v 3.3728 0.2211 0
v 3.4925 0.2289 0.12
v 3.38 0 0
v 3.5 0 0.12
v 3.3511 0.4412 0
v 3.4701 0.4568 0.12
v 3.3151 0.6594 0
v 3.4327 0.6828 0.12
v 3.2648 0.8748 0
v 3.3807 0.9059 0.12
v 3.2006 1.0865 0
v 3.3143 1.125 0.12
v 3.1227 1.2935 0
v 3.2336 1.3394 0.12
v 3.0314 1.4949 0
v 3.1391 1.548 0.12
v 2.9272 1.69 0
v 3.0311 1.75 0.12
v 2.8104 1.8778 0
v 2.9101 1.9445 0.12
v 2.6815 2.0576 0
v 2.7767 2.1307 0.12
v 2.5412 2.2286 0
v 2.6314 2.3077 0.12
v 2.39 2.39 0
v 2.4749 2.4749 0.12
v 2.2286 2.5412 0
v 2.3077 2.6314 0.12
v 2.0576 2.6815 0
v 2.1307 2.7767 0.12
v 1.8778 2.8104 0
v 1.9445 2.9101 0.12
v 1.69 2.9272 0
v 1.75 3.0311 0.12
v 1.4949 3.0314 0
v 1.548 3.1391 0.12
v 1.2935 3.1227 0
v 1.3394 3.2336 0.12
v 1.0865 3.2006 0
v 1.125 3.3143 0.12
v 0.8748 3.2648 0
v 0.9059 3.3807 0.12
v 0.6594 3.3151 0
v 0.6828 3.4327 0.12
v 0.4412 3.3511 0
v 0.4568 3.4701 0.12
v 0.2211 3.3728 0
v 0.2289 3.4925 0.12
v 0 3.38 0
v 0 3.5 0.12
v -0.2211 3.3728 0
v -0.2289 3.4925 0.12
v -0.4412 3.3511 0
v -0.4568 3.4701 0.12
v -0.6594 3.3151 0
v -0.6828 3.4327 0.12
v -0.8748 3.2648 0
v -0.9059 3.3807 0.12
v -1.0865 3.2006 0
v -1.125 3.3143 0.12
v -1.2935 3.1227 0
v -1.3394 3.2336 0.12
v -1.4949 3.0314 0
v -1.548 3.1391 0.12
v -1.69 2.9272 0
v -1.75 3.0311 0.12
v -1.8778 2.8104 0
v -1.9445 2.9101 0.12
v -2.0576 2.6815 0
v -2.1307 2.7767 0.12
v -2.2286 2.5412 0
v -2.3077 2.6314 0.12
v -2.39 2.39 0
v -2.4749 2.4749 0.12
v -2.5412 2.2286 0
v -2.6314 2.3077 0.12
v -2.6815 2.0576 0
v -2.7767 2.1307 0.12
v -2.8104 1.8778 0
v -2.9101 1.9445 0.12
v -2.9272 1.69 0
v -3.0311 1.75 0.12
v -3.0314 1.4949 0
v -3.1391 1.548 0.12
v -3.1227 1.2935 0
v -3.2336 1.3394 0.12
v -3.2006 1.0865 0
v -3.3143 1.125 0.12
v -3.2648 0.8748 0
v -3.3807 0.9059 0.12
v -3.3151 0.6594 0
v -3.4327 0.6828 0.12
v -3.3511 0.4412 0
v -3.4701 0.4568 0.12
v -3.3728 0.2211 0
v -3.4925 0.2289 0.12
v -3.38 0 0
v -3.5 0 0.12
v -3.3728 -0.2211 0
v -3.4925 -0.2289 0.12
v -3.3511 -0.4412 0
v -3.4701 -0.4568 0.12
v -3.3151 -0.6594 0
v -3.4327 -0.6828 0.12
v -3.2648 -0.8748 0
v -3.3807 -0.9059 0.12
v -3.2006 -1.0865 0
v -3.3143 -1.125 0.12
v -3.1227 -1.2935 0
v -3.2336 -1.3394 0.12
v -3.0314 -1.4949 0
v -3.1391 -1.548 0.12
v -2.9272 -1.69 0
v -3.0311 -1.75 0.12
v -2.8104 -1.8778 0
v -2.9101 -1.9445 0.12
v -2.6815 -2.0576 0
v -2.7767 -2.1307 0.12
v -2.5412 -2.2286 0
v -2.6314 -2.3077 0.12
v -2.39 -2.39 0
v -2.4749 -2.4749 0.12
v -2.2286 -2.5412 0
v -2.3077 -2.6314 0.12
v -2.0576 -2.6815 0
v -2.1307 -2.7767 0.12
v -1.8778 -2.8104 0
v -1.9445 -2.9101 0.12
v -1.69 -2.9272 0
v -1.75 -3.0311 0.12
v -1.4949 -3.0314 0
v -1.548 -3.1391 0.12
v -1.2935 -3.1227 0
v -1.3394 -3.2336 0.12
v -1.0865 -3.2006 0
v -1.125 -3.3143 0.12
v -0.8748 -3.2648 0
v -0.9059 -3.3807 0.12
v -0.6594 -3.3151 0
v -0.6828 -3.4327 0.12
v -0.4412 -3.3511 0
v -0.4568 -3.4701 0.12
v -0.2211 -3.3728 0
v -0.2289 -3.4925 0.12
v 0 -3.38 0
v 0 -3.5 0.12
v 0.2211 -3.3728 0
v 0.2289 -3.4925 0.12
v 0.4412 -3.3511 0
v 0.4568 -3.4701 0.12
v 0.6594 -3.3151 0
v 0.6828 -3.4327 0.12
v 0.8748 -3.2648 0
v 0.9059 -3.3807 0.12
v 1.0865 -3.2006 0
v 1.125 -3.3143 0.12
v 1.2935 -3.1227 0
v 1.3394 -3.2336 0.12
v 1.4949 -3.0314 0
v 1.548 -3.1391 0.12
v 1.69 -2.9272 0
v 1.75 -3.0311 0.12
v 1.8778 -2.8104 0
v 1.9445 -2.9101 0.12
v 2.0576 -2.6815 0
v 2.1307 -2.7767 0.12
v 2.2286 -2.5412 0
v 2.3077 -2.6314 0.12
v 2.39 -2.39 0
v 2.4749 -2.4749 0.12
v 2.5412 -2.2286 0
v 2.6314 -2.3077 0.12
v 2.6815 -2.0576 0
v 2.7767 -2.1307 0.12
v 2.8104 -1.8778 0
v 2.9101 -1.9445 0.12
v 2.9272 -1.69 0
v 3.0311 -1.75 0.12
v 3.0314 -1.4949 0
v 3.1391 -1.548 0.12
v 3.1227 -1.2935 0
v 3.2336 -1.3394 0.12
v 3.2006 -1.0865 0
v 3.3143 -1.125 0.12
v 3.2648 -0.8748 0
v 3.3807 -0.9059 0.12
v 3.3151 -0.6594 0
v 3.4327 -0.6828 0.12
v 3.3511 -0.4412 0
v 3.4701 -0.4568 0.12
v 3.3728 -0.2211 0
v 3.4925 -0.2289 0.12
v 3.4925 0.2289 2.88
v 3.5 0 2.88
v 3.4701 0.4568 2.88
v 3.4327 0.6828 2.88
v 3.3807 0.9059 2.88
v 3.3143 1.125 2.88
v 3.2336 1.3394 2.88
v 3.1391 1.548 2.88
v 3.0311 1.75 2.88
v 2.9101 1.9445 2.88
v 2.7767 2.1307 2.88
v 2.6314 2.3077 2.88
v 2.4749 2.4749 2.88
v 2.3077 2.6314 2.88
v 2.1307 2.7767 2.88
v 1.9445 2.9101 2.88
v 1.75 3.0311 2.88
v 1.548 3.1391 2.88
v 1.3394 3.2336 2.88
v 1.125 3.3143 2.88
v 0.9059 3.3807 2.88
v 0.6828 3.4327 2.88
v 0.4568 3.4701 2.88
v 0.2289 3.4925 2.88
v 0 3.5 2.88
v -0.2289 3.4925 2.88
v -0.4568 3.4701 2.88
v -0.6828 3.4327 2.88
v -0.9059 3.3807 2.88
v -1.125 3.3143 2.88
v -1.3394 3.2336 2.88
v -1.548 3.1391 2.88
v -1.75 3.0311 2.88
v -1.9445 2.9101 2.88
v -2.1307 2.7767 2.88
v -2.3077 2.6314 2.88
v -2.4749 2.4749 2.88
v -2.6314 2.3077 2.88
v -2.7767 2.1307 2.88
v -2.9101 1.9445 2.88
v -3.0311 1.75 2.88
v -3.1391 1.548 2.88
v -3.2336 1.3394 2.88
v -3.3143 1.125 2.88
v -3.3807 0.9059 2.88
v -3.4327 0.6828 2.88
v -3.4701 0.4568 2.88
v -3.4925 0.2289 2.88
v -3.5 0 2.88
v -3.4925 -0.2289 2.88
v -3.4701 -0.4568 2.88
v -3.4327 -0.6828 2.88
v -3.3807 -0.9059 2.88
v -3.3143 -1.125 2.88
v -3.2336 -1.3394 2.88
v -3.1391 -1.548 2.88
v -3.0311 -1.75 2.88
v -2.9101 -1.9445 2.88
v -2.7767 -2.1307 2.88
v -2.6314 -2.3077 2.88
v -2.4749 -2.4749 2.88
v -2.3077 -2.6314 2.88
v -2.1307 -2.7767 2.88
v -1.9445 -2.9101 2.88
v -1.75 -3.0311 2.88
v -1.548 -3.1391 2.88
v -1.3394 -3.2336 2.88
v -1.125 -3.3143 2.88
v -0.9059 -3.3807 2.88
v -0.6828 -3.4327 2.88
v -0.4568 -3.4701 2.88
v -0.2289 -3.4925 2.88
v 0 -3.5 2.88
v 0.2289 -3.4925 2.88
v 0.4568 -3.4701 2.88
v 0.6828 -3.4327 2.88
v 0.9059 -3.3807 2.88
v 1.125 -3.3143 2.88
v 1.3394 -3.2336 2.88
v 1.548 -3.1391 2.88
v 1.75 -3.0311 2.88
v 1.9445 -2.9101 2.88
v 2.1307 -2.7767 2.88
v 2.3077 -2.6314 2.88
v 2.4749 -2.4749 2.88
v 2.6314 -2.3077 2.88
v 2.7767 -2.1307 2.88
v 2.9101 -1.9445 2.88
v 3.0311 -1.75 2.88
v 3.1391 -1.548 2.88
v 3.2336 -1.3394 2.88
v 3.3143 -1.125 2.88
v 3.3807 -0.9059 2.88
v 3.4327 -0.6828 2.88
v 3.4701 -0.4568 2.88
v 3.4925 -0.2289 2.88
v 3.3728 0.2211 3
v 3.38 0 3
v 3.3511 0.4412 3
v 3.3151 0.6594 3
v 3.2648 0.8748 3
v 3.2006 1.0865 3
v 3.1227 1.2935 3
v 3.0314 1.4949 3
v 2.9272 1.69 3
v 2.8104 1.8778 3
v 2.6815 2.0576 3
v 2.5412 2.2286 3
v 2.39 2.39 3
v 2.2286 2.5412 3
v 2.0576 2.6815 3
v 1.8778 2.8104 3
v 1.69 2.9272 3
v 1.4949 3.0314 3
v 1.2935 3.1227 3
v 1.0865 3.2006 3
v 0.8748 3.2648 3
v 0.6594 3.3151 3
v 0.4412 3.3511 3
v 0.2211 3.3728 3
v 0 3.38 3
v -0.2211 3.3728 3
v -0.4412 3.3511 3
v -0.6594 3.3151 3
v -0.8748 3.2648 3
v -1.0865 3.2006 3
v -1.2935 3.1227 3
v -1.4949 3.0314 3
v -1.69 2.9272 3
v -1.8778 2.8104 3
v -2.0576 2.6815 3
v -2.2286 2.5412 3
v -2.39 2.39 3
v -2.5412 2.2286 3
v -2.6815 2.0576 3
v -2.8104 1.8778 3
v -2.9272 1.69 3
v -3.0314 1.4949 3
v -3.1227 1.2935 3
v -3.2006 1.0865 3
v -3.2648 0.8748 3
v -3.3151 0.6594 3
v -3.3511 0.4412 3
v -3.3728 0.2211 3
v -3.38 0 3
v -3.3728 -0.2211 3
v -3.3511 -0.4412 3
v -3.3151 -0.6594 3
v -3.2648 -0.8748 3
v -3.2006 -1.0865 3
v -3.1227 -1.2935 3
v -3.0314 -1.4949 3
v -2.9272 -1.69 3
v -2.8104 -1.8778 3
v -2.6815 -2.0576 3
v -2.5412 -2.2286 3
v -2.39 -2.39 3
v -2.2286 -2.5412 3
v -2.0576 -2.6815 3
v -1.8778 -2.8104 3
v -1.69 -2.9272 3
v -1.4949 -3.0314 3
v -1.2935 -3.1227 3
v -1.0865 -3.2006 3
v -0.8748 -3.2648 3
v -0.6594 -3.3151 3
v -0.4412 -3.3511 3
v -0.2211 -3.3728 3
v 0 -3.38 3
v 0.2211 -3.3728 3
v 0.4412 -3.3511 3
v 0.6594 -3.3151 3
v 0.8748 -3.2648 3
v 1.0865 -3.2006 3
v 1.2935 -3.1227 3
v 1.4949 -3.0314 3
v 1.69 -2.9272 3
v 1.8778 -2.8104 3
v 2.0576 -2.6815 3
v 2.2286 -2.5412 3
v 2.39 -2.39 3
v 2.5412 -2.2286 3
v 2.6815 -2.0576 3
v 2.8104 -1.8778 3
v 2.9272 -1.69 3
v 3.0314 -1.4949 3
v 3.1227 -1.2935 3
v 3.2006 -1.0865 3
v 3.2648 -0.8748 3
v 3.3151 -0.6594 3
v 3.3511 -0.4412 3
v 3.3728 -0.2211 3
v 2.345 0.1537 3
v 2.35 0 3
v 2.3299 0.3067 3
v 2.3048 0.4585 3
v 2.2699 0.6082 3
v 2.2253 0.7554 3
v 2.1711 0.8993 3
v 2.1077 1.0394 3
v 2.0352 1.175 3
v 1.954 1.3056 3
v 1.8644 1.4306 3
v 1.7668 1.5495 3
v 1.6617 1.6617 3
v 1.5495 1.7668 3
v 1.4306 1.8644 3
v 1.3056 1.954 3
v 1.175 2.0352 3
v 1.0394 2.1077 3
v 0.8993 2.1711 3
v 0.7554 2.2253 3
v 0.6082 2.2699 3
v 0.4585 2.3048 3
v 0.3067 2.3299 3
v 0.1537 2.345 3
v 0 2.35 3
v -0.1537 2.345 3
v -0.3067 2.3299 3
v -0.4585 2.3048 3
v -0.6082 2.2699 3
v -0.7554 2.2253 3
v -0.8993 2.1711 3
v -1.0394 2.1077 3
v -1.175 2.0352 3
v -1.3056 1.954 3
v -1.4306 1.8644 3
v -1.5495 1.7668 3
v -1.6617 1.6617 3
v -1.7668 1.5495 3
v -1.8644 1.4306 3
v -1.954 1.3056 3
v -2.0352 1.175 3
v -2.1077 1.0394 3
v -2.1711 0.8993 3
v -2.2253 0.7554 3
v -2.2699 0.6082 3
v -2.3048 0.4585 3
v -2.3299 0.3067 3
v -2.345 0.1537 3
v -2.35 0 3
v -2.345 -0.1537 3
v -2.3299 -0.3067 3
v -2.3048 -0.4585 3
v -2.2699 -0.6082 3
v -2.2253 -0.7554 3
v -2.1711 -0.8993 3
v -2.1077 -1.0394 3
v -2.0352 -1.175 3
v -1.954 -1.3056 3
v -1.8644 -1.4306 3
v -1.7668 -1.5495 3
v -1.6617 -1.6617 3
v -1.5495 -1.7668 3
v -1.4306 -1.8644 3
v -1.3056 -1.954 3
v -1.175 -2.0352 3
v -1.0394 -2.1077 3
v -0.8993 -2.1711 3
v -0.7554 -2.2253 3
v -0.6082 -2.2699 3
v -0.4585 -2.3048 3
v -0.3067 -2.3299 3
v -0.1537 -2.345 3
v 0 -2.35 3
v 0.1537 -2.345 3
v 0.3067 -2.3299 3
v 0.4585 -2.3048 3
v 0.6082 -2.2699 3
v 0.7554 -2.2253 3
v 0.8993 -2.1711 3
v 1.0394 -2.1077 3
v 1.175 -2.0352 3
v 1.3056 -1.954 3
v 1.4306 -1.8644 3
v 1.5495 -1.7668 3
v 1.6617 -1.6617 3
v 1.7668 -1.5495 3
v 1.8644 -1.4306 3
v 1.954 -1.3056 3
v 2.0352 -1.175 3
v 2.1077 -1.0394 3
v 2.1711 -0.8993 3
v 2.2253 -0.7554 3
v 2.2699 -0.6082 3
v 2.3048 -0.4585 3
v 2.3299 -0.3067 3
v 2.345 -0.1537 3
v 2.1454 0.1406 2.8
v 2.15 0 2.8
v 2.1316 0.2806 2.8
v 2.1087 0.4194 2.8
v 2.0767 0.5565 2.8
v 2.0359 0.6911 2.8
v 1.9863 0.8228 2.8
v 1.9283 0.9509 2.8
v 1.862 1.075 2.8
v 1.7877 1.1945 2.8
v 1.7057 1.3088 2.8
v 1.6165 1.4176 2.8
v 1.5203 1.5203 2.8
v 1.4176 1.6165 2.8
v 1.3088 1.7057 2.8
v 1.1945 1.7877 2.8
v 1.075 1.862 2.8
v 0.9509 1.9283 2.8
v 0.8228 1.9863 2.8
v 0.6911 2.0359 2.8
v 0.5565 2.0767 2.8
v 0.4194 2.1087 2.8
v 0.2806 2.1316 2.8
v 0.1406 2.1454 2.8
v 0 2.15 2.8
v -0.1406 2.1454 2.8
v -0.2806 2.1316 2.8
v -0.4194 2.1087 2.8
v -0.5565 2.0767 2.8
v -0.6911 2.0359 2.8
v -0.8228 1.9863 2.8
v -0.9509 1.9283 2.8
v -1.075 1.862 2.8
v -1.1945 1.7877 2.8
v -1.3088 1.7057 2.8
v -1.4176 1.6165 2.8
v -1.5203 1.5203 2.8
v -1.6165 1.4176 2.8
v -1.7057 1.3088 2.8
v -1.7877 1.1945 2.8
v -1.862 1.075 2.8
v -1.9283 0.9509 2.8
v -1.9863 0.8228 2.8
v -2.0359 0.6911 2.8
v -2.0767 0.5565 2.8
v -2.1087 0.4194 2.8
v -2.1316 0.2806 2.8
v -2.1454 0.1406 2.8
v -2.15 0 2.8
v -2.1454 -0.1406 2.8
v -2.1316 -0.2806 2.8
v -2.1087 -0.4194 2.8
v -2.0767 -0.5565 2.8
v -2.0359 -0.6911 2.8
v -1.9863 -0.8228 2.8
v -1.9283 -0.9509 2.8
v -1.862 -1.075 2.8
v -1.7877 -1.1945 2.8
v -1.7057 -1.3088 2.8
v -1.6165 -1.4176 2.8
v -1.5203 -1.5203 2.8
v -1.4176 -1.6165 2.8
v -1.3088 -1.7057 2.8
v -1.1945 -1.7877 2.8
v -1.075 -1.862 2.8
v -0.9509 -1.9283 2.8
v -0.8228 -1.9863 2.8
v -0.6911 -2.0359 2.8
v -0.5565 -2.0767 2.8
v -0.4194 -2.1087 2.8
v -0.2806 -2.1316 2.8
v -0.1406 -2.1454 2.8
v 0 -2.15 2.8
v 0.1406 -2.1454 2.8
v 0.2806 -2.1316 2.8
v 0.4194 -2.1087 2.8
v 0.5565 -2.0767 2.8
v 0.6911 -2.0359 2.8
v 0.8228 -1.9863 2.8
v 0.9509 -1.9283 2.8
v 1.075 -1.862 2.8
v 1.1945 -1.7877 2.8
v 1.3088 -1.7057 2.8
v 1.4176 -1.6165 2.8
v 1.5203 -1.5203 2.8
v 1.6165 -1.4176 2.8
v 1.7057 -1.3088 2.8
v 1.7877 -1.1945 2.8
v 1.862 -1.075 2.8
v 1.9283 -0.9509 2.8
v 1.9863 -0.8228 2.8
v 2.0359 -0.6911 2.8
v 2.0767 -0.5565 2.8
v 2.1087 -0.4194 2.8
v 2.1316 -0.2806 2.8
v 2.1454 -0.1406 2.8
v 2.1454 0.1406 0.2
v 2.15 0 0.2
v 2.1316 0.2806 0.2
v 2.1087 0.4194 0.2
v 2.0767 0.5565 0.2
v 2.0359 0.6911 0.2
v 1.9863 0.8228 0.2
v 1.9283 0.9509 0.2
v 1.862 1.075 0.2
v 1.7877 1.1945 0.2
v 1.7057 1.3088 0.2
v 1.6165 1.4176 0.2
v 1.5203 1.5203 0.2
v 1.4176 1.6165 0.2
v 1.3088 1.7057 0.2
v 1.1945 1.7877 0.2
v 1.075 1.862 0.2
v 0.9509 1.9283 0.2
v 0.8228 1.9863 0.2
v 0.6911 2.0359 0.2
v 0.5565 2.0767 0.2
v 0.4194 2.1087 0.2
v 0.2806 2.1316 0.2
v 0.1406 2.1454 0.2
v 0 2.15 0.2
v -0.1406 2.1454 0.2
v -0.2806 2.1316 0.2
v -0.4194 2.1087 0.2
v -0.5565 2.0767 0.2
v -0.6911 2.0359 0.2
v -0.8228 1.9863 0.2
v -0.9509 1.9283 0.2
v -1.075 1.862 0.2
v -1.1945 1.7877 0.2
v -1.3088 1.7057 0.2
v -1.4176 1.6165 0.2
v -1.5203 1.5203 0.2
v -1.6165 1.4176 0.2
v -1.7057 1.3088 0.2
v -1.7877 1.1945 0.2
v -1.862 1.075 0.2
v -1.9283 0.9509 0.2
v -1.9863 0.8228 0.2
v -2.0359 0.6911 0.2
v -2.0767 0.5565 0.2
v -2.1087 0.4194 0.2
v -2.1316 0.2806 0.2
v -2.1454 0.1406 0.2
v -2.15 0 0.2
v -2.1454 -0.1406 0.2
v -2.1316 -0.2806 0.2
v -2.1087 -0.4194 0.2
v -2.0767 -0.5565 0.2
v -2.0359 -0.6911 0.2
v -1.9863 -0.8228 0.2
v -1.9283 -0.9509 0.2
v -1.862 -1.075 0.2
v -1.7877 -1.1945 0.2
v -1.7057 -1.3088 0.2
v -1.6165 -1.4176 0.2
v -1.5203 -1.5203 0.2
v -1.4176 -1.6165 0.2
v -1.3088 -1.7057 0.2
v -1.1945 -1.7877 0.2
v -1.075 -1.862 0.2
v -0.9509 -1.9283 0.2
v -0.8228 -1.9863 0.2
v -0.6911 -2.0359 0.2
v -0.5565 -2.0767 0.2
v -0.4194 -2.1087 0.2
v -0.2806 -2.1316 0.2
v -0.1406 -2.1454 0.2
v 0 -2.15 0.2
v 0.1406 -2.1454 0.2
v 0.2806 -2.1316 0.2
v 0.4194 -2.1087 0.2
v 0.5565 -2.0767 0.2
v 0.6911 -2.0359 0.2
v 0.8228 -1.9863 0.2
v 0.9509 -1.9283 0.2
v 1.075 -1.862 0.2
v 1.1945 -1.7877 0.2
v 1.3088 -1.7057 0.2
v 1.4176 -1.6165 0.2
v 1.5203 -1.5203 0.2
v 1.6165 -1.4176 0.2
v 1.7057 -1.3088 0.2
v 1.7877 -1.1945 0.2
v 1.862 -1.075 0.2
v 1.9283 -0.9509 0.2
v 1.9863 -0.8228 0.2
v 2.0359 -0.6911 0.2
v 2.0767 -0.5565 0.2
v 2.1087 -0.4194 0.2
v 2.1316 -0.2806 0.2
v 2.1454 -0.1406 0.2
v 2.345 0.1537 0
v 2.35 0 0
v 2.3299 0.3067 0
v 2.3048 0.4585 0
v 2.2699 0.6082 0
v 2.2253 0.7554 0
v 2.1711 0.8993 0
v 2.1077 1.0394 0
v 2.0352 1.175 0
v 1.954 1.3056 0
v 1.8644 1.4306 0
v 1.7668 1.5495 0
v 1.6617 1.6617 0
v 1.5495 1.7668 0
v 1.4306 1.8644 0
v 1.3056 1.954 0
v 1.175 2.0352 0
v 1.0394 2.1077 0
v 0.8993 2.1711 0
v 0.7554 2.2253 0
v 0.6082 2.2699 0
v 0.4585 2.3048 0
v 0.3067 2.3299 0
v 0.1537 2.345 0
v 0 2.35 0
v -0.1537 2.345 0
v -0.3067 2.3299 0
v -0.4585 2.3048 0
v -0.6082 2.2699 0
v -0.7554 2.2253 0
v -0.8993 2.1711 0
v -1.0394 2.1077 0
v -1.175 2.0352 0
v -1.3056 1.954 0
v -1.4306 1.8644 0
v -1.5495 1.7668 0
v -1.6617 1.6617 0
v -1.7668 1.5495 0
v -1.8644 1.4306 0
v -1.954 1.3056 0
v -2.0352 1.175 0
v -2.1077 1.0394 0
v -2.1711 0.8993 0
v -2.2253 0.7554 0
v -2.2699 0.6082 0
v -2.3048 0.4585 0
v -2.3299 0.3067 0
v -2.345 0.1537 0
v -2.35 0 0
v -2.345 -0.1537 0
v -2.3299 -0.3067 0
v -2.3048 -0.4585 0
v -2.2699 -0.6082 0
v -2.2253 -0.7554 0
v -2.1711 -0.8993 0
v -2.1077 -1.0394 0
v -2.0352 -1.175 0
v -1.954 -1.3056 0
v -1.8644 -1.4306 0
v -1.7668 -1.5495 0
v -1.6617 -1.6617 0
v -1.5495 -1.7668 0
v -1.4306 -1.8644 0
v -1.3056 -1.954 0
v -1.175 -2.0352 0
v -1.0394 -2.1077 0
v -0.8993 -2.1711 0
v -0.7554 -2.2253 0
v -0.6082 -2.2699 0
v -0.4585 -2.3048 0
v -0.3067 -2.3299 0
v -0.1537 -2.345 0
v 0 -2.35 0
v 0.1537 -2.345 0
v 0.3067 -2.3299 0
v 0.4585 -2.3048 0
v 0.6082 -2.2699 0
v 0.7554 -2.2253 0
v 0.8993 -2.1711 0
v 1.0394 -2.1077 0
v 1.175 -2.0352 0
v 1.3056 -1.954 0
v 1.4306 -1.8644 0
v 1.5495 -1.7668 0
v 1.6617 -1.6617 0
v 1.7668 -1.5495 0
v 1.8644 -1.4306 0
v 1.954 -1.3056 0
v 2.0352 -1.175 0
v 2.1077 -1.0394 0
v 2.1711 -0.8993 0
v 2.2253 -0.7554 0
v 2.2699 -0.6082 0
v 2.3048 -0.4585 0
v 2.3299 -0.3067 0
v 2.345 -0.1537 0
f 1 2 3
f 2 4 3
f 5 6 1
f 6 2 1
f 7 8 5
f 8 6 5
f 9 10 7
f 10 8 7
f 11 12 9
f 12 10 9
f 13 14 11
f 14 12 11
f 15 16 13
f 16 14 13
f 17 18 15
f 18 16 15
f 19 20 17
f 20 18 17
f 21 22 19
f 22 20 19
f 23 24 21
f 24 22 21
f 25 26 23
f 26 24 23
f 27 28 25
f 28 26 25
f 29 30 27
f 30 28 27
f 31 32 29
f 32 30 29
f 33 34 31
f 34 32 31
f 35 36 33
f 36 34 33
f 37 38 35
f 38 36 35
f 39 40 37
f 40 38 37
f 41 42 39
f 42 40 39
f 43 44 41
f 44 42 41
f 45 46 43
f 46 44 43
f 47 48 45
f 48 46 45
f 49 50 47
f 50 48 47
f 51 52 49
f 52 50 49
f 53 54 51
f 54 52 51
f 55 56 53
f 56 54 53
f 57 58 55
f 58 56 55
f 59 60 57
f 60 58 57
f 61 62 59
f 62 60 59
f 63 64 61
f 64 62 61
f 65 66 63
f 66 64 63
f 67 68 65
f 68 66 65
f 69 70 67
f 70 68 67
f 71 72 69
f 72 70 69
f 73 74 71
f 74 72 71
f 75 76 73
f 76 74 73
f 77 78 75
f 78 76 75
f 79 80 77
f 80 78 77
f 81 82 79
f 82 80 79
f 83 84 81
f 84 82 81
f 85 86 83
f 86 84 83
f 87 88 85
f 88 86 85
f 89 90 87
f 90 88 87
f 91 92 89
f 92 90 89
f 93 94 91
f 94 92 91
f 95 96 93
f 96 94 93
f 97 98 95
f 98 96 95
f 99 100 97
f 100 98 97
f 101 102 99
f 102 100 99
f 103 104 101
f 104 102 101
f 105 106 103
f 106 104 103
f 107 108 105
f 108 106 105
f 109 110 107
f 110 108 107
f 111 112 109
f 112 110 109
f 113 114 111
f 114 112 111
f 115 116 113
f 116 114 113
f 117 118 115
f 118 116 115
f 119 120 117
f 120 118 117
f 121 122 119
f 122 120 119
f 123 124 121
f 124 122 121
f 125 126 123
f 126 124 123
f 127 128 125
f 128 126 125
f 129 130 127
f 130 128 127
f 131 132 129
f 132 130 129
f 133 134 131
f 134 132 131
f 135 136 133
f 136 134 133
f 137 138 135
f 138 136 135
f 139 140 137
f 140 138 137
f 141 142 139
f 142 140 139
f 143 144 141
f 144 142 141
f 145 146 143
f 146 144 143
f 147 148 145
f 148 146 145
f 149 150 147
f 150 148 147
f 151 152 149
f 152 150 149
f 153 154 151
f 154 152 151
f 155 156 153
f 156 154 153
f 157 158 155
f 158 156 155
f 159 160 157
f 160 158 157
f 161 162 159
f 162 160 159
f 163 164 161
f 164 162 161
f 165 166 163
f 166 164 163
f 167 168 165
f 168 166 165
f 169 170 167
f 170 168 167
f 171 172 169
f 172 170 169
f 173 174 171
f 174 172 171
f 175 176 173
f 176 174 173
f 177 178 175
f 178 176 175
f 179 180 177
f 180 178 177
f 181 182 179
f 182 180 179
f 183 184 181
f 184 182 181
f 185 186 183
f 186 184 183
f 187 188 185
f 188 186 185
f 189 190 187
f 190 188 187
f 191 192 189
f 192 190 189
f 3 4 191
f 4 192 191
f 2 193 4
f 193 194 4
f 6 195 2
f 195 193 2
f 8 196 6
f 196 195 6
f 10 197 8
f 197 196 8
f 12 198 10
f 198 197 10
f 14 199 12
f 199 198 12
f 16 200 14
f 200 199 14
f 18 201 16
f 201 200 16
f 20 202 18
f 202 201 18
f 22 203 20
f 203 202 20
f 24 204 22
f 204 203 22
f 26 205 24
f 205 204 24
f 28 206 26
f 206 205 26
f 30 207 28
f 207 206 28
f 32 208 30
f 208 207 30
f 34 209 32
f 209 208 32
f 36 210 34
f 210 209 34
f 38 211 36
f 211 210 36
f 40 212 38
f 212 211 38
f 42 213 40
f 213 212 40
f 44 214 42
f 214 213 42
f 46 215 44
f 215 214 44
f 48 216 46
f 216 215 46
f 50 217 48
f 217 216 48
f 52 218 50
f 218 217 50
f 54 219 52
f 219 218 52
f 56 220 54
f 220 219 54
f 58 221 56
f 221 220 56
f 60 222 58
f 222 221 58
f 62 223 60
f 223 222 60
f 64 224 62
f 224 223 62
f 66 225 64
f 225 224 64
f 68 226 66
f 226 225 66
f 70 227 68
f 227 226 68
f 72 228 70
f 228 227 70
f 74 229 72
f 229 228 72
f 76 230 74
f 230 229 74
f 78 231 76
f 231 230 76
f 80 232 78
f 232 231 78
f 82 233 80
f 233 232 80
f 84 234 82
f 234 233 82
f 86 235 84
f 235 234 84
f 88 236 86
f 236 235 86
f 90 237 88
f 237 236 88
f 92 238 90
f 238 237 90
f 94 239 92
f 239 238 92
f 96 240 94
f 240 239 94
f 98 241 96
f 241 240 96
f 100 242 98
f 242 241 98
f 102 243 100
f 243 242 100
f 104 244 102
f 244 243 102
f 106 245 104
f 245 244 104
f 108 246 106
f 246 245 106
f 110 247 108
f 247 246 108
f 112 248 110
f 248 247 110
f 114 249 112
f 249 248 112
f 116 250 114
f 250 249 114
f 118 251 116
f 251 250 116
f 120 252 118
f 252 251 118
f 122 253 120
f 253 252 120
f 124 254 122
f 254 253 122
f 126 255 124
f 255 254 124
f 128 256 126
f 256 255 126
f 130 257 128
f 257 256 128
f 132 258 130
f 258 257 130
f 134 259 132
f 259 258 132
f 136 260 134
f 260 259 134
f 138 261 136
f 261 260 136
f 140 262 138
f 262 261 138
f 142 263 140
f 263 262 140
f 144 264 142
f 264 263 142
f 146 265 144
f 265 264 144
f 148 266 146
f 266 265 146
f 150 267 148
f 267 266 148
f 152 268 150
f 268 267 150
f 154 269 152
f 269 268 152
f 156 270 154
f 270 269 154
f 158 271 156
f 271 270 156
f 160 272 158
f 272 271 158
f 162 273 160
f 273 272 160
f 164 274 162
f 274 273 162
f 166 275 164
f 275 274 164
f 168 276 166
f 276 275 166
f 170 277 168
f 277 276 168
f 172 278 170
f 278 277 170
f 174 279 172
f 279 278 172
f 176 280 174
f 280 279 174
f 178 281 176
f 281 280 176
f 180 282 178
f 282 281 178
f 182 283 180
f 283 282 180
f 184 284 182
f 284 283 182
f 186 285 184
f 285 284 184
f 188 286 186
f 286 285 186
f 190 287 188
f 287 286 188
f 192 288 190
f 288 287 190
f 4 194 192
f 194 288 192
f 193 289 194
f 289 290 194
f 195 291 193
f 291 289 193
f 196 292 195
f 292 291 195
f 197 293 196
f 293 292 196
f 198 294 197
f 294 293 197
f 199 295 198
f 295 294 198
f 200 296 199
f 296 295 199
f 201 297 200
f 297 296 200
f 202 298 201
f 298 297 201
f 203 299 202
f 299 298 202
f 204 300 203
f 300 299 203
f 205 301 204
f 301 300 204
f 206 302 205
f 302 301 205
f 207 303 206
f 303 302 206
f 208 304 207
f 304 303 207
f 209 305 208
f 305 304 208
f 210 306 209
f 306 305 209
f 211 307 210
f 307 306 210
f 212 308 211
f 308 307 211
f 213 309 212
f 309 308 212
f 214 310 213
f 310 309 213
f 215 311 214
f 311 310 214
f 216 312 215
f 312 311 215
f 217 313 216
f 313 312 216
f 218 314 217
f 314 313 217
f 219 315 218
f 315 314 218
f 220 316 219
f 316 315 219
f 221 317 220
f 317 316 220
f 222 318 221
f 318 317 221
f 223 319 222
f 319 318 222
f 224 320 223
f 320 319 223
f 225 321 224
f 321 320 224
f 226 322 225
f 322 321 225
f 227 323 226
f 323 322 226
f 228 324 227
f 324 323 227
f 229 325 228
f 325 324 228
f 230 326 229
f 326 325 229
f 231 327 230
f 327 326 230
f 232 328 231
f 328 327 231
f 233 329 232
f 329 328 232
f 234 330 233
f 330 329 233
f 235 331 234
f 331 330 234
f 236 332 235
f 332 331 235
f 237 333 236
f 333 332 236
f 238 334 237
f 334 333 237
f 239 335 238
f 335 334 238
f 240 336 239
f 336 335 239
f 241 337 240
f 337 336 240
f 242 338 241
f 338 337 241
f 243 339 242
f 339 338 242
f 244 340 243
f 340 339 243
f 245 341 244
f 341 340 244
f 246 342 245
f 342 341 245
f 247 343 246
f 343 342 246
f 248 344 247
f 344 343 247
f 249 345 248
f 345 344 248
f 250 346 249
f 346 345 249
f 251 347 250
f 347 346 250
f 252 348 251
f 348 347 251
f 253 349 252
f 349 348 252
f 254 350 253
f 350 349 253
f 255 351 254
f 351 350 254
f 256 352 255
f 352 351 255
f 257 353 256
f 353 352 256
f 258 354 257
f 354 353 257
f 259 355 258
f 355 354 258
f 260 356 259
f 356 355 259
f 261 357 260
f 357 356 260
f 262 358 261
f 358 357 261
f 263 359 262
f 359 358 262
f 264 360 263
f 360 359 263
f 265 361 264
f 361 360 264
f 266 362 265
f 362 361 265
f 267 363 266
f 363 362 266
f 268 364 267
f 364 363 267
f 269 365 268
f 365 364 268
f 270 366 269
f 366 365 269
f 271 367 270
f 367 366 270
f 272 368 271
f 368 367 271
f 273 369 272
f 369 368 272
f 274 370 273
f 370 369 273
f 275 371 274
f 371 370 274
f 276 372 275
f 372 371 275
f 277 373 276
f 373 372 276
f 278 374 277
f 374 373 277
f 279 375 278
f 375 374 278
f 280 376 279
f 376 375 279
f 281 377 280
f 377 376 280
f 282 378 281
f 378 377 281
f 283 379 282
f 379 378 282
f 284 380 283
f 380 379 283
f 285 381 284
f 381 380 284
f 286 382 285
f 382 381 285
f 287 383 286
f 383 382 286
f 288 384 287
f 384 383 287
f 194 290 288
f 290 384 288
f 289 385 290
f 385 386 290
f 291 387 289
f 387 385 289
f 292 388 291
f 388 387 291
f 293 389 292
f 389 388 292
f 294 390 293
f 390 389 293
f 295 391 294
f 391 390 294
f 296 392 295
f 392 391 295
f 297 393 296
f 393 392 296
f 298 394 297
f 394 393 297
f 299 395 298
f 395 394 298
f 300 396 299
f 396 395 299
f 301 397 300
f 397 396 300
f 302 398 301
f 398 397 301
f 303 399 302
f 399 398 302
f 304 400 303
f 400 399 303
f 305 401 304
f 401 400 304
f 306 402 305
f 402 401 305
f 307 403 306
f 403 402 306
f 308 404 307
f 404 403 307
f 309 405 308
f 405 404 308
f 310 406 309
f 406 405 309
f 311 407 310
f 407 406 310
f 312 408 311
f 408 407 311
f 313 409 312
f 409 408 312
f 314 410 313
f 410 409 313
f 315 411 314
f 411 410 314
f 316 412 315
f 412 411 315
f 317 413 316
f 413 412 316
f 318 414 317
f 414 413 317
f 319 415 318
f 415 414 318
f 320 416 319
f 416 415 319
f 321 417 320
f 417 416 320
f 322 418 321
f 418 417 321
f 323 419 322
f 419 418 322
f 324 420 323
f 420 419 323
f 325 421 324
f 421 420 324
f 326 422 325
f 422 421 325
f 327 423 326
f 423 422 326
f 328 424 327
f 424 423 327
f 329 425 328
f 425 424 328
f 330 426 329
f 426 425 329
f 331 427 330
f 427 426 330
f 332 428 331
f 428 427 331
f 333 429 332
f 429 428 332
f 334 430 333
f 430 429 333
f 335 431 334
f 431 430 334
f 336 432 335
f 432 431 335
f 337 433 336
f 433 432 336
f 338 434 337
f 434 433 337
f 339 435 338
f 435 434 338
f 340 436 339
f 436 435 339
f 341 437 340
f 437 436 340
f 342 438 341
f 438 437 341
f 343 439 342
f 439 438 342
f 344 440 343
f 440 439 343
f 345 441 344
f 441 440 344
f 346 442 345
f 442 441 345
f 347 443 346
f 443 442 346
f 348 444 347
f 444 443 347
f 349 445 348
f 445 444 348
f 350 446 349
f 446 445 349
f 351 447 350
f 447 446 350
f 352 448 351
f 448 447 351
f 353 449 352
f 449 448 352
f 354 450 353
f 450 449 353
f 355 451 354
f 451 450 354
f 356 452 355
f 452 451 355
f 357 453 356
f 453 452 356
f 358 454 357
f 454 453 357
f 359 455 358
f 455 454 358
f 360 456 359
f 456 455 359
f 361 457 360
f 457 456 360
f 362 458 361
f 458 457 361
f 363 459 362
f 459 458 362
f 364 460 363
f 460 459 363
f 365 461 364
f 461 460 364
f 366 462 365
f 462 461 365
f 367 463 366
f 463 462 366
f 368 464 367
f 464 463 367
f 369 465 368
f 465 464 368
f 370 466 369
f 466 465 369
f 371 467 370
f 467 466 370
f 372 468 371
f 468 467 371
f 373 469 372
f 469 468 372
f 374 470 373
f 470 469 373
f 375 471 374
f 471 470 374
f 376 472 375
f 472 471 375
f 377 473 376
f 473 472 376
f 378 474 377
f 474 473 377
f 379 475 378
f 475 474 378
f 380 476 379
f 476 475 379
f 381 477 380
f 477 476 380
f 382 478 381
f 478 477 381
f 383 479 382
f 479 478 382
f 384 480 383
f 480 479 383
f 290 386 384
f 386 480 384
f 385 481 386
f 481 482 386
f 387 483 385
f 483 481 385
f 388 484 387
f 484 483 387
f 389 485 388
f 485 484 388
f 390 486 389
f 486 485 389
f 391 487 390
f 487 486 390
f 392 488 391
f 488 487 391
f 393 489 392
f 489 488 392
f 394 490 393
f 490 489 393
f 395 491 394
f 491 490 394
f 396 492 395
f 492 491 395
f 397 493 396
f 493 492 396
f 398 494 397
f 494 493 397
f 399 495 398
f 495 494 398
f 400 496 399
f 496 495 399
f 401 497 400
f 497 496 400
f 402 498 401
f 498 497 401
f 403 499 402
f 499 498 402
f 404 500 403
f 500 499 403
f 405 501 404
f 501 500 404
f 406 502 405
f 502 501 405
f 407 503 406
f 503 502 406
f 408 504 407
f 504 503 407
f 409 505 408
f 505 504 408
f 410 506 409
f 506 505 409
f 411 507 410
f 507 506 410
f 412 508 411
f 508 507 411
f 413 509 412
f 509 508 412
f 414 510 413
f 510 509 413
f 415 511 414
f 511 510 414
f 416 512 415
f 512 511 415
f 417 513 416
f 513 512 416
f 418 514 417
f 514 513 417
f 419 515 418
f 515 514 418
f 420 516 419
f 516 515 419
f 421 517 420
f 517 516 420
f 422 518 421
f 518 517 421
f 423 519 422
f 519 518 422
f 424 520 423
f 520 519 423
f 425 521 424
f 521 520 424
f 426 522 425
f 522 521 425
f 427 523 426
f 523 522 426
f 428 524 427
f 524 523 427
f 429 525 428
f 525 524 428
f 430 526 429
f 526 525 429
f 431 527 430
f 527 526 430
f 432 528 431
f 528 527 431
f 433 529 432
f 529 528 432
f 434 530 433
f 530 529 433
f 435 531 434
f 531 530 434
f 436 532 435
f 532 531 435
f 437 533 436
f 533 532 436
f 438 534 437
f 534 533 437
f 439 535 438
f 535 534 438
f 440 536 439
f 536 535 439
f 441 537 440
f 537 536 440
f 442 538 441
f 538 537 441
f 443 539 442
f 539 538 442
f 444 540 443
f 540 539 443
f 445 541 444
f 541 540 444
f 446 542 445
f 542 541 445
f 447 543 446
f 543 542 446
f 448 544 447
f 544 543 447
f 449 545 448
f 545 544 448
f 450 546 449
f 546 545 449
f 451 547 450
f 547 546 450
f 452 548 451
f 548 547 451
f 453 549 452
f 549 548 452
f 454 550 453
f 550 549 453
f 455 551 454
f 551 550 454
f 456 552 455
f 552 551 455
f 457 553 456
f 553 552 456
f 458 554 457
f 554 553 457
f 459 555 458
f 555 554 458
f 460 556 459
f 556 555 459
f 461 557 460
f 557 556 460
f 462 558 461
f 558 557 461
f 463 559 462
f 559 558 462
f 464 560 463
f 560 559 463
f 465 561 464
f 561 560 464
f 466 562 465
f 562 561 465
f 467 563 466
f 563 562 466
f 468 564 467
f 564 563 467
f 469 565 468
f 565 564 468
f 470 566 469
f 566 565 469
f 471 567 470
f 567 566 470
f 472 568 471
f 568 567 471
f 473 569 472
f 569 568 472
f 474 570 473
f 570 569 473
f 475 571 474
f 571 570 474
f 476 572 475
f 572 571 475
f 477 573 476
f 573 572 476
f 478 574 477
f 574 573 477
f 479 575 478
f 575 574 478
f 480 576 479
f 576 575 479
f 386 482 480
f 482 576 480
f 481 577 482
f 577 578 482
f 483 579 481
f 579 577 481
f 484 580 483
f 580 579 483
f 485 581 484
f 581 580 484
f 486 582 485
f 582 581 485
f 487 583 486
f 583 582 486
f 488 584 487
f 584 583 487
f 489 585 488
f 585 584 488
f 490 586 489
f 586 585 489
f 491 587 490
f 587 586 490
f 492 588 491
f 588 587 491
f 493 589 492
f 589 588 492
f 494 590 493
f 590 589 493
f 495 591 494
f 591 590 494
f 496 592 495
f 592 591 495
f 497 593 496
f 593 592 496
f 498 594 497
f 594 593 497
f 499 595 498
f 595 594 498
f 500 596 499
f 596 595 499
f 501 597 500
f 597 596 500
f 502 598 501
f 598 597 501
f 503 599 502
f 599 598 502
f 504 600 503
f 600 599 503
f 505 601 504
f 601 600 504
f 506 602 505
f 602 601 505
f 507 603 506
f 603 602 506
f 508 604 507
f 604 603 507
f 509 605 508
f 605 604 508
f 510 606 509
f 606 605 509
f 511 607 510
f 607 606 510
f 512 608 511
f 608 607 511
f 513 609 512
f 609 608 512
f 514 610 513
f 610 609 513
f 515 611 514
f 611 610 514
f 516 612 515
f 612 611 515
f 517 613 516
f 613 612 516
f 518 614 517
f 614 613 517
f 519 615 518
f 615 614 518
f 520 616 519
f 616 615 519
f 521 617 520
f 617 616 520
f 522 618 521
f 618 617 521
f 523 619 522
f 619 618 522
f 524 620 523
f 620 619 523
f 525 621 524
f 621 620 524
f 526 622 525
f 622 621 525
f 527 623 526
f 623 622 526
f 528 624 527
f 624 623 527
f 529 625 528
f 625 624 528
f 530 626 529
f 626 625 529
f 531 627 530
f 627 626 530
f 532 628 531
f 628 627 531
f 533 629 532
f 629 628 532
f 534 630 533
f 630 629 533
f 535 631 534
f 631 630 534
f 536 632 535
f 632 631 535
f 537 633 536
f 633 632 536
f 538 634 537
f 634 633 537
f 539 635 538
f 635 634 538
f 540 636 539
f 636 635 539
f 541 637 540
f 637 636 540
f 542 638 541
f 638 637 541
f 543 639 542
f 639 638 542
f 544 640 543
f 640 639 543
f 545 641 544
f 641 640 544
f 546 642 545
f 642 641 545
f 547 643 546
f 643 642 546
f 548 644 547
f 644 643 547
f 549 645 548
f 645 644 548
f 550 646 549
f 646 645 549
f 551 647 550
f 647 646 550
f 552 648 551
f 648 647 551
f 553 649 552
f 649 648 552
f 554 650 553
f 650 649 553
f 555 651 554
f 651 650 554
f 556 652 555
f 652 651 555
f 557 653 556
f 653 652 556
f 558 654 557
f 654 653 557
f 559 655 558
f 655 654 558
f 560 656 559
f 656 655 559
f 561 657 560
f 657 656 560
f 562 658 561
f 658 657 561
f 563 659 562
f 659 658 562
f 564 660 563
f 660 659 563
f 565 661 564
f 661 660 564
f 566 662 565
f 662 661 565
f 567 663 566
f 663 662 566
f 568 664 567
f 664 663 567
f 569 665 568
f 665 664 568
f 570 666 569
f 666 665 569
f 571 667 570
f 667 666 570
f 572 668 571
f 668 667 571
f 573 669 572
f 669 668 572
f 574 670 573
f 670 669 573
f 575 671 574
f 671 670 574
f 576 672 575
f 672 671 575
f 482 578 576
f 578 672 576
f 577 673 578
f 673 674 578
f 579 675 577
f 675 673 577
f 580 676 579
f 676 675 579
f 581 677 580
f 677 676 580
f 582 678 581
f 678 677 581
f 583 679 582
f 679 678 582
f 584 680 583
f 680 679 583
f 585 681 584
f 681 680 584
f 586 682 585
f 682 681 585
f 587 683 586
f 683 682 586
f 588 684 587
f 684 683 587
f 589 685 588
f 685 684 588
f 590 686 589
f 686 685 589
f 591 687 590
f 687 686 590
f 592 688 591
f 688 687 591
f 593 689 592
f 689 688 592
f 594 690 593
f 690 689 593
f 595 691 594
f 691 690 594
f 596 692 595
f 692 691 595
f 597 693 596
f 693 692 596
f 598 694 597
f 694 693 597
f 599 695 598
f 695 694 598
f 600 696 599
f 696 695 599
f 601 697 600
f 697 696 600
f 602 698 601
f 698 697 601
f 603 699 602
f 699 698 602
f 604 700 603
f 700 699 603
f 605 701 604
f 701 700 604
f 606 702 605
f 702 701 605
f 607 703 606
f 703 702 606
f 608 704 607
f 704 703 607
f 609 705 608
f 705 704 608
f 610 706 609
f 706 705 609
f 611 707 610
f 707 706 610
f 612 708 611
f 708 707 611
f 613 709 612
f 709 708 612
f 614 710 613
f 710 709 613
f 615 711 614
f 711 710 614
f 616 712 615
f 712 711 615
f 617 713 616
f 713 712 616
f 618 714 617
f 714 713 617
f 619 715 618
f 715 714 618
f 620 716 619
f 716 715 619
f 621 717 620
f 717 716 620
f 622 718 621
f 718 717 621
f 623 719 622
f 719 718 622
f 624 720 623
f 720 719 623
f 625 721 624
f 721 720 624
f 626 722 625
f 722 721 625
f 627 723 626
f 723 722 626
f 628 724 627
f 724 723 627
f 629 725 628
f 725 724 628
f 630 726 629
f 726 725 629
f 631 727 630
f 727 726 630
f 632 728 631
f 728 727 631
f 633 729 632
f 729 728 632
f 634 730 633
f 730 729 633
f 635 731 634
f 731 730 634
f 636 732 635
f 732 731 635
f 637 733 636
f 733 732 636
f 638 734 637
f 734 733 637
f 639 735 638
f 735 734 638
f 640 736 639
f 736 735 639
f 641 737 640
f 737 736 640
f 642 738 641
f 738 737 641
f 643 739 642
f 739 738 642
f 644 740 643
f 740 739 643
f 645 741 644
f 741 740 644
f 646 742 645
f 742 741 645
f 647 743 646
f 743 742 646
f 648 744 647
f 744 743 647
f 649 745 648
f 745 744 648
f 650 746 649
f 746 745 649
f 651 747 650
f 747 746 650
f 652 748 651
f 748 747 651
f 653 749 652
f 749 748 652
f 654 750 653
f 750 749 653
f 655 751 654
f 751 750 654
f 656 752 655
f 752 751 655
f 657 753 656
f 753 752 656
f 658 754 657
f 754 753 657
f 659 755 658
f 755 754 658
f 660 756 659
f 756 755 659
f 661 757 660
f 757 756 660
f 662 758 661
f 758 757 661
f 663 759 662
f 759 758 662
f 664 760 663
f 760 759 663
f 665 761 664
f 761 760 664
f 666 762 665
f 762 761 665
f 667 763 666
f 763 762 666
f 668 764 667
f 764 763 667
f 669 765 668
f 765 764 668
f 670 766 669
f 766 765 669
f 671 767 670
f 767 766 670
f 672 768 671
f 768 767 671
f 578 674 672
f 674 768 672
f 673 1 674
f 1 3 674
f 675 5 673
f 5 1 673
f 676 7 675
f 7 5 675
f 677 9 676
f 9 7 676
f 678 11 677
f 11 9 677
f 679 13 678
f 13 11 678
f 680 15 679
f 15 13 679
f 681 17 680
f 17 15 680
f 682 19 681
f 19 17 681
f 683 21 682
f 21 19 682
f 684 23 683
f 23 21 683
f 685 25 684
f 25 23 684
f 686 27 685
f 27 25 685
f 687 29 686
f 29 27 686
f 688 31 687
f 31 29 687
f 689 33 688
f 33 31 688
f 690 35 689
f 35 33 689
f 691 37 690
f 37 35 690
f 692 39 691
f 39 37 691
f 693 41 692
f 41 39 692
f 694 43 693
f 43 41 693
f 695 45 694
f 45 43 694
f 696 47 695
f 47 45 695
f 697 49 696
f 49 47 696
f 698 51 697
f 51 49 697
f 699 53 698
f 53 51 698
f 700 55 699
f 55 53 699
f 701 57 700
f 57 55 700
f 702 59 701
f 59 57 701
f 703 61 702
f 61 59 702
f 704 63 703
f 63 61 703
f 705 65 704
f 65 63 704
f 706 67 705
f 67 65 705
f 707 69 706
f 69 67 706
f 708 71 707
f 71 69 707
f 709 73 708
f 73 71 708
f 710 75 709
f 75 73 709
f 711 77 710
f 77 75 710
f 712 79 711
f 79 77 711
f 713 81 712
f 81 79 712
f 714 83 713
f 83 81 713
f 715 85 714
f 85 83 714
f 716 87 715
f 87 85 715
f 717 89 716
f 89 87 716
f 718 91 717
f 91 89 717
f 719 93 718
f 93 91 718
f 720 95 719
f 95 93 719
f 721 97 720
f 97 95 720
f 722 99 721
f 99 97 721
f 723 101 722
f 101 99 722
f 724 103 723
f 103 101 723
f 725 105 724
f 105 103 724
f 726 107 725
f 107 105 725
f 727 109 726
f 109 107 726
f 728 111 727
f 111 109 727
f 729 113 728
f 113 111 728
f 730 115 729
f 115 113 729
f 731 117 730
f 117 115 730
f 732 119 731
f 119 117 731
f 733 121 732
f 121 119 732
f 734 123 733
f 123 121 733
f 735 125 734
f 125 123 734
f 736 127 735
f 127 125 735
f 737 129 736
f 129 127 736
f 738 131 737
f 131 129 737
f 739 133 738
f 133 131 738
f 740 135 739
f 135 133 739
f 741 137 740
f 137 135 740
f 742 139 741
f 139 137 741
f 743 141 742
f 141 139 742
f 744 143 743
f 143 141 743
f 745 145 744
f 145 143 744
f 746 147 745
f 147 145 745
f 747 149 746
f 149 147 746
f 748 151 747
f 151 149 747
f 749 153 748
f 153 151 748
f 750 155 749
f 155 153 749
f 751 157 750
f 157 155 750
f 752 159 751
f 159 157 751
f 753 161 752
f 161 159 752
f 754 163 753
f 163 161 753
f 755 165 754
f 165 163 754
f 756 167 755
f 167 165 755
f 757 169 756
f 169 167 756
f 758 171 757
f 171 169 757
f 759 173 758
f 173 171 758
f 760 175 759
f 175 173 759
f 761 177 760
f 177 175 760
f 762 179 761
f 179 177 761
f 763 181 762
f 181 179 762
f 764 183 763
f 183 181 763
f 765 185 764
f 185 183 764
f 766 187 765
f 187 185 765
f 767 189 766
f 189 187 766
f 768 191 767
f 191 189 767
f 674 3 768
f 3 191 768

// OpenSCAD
// OOMP generic catalogue model; units: mm.
// Stud length is additional to body depth. Tapping depths are model assumptions.
variant = "full"; // [full, display]
family = "spacer";
connection_type = "plain";
depth_mm = 3;
stud_length_mm = 0;
tapped_depth_mm = 0;
bore_mm = 4.3;
outer_diameter_mm = 7;
across_flats_mm = 6;
thread_nominal_diameter_mm = 3;
thread_pitch_mm = 0.5;
edge_chamfer_mm = 0.12;
mouth_chamfer_mm = 0.2;
angular_segments = 96;
samples_per_pitch = 16;

// Boundary travels up the outside, then down any tapped/plain bore.
// Equal-height rings at shoulders form the annular shoulder faces.
n = angular_segments;
threaded = family == "standoff";
has_stud = connection_type == "stud_to_tapped" || connection_type == "stud_to_stud";
two_studs = connection_type == "stud_to_stud";
through = !threaded || connection_type == "tapped_to_tapped";
pitch = thread_pitch_mm;
diameter = threaded ? thread_nominal_diameter_mm : bore_mm;
minor = diameter - 5*sqrt(3)*pitch/8;
transition = mouth_chamfer_mm + (threaded ? 5*sqrt(3)*pitch/16 : 0);
tip_chamfer = mouth_chamfer_mm + 17*sqrt(3)*pitch/48;
function sorted(v) = len(v)<=1 ? v : let(p=v[0])
    concat(sorted([for(x=v) if(x<p-1e-8) x]), [p], sorted([for(x=v) if(x>p+1e-8) x]));
function reverse(v) = [for(i=[len(v)-1:-1:0]) v[i]];
function theta(i) = i*360/n;
function fract(x) = x-floor(x);
function phase_distance(i,z) = abs(fract(z/pitch-theta(i)/360+0.5)-0.5);
function thread_r(i,z) = minor/2 + min(5*sqrt(3)*pitch/16,
    max(0,(phase_distance(i,z)-0.125)*pitch*sqrt(3)));
function stud_r(i,z,tip) = min(diameter/2 - (variant=="full" ?
    min(17*sqrt(3)*pitch/48,max(0,(phase_distance(i,z)-0.0625)*pitch*sqrt(3))) : 0),
    diameter/2-tip_chamfer+abs(z-tip));
function body_r(i,z) = (threaded ? across_flats_mm/2/cos(theta(i)%60-30) : outer_diameter_mm/2)
    - max(0,edge_chamfer_mm-min(z,depth_mm-z));
function bore_r(i,z) = max(threaded ? (variant=="full" ? thread_r(i,z) : minor/2) : diameter/2,
    diameter/2+mouth_chamfer_mm-(through ? min(z,depth_mm-z) : depth_mm-z));
function stud_z(a,b,tip) = let(count=variant=="full" ? ceil(stud_length_mm/pitch*samples_per_pitch) : 1)
    sorted(concat([for(i=[0:count]) a+(b-a)*i/count], [tip==a ? tip+tip_chamfer : tip-tip_chamfer]));
body_z = sorted([0,edge_chamfer_mm,depth_mm-edge_chamfer_mm,depth_mm]);
low = through ? 0 : depth_mm-tapped_depth_mm;
count = threaded && variant=="full" ? ceil((depth_mm-low)/pitch*samples_per_pitch) : 1;
bore_z = two_studs ? [] : reverse(sorted(concat(
    [for(i=[0:count]) low+(depth_mm-low)*i/count],
    [depth_mm-mouth_chamfer_mm,depth_mm-transition],
    through ? [mouth_chamfer_mm,transition] : [])));
// Ring descriptors: [height, kind, tip]. Kind: 0 body, 1 stud, 2 bore.
rings = concat(
    has_stud ? [for(z=stud_z(-stud_length_mm,0,-stud_length_mm)) [z,1,-stud_length_mm]] : [],
    [for(z=body_z) [z,0,0]],
    two_studs ? [for(z=stud_z(depth_mm,depth_mm+stud_length_mm,depth_mm+stud_length_mm)) [z,1,depth_mm+stud_length_mm]] : [],
    [for(z=bore_z) [z,2,0]]);
function radius(i,ring) = ring[1]==0 ? body_r(i,ring[0]) :
    ring[1]==1 ? stud_r(i,ring[0],ring[2]) : bore_r(i,ring[0]);
points = concat([for(ring=rings) for(i=[0:n-1])
    [radius(i,ring)*cos(theta(i)),radius(i,ring)*sin(theta(i)),ring[0]]],
    through ? [] : [[0,0,rings[0][0]],[0,0,rings[len(rings)-1][0]]]);
center = len(rings)*n;
last = (len(rings)-1)*n;
// OpenSCAD winding is opposite to STL winding.
faces = concat(
    [for(j=[0:len(rings)-(through ? 1 : 2)]) for(i=[0:n-1]) each
        let(a=j*n+i,b=j*n+(i+1)%n,c=((j+1)%len(rings))*n+(i+1)%n,d=((j+1)%len(rings))*n+i)
        [[a,c,b],[a,d,c]]],
    through ? [] : [for(i=[0:n-1]) each let(k=(i+1)%n)
        [[center,i,k],[center+1,last+k,last+i]]]);
assert(family=="spacer" || family=="standoff");
assert(!threaded || connection_type=="tapped_to_tapped" || has_stud);
assert(depth_mm>0 && diameter>0 && pitch>0);
assert(variant=="full" || variant=="display");
assert(n>=24 && n%12==0 && samples_per_pitch>=8);
assert(mouth_chamfer_mm>0 && mouth_chamfer_mm<depth_mm/2);
assert(edge_chamfer_mm>=0 && edge_chamfer_mm<depth_mm/2);
assert(diameter+4*max(mouth_chamfer_mm,edge_chamfer_mm) < (threaded ? across_flats_mm : outer_diameter_mm));
assert(!has_stud || stud_length_mm>2*mouth_chamfer_mm);
assert(!through || !threaded || 2*transition<depth_mm);
assert(connection_type!="stud_to_tapped" || (tapped_depth_mm>transition && tapped_depth_mm<depth_mm));
color([0.86,0.85,0.81]) polyhedron(points=points,faces=faces,convexity=20);
